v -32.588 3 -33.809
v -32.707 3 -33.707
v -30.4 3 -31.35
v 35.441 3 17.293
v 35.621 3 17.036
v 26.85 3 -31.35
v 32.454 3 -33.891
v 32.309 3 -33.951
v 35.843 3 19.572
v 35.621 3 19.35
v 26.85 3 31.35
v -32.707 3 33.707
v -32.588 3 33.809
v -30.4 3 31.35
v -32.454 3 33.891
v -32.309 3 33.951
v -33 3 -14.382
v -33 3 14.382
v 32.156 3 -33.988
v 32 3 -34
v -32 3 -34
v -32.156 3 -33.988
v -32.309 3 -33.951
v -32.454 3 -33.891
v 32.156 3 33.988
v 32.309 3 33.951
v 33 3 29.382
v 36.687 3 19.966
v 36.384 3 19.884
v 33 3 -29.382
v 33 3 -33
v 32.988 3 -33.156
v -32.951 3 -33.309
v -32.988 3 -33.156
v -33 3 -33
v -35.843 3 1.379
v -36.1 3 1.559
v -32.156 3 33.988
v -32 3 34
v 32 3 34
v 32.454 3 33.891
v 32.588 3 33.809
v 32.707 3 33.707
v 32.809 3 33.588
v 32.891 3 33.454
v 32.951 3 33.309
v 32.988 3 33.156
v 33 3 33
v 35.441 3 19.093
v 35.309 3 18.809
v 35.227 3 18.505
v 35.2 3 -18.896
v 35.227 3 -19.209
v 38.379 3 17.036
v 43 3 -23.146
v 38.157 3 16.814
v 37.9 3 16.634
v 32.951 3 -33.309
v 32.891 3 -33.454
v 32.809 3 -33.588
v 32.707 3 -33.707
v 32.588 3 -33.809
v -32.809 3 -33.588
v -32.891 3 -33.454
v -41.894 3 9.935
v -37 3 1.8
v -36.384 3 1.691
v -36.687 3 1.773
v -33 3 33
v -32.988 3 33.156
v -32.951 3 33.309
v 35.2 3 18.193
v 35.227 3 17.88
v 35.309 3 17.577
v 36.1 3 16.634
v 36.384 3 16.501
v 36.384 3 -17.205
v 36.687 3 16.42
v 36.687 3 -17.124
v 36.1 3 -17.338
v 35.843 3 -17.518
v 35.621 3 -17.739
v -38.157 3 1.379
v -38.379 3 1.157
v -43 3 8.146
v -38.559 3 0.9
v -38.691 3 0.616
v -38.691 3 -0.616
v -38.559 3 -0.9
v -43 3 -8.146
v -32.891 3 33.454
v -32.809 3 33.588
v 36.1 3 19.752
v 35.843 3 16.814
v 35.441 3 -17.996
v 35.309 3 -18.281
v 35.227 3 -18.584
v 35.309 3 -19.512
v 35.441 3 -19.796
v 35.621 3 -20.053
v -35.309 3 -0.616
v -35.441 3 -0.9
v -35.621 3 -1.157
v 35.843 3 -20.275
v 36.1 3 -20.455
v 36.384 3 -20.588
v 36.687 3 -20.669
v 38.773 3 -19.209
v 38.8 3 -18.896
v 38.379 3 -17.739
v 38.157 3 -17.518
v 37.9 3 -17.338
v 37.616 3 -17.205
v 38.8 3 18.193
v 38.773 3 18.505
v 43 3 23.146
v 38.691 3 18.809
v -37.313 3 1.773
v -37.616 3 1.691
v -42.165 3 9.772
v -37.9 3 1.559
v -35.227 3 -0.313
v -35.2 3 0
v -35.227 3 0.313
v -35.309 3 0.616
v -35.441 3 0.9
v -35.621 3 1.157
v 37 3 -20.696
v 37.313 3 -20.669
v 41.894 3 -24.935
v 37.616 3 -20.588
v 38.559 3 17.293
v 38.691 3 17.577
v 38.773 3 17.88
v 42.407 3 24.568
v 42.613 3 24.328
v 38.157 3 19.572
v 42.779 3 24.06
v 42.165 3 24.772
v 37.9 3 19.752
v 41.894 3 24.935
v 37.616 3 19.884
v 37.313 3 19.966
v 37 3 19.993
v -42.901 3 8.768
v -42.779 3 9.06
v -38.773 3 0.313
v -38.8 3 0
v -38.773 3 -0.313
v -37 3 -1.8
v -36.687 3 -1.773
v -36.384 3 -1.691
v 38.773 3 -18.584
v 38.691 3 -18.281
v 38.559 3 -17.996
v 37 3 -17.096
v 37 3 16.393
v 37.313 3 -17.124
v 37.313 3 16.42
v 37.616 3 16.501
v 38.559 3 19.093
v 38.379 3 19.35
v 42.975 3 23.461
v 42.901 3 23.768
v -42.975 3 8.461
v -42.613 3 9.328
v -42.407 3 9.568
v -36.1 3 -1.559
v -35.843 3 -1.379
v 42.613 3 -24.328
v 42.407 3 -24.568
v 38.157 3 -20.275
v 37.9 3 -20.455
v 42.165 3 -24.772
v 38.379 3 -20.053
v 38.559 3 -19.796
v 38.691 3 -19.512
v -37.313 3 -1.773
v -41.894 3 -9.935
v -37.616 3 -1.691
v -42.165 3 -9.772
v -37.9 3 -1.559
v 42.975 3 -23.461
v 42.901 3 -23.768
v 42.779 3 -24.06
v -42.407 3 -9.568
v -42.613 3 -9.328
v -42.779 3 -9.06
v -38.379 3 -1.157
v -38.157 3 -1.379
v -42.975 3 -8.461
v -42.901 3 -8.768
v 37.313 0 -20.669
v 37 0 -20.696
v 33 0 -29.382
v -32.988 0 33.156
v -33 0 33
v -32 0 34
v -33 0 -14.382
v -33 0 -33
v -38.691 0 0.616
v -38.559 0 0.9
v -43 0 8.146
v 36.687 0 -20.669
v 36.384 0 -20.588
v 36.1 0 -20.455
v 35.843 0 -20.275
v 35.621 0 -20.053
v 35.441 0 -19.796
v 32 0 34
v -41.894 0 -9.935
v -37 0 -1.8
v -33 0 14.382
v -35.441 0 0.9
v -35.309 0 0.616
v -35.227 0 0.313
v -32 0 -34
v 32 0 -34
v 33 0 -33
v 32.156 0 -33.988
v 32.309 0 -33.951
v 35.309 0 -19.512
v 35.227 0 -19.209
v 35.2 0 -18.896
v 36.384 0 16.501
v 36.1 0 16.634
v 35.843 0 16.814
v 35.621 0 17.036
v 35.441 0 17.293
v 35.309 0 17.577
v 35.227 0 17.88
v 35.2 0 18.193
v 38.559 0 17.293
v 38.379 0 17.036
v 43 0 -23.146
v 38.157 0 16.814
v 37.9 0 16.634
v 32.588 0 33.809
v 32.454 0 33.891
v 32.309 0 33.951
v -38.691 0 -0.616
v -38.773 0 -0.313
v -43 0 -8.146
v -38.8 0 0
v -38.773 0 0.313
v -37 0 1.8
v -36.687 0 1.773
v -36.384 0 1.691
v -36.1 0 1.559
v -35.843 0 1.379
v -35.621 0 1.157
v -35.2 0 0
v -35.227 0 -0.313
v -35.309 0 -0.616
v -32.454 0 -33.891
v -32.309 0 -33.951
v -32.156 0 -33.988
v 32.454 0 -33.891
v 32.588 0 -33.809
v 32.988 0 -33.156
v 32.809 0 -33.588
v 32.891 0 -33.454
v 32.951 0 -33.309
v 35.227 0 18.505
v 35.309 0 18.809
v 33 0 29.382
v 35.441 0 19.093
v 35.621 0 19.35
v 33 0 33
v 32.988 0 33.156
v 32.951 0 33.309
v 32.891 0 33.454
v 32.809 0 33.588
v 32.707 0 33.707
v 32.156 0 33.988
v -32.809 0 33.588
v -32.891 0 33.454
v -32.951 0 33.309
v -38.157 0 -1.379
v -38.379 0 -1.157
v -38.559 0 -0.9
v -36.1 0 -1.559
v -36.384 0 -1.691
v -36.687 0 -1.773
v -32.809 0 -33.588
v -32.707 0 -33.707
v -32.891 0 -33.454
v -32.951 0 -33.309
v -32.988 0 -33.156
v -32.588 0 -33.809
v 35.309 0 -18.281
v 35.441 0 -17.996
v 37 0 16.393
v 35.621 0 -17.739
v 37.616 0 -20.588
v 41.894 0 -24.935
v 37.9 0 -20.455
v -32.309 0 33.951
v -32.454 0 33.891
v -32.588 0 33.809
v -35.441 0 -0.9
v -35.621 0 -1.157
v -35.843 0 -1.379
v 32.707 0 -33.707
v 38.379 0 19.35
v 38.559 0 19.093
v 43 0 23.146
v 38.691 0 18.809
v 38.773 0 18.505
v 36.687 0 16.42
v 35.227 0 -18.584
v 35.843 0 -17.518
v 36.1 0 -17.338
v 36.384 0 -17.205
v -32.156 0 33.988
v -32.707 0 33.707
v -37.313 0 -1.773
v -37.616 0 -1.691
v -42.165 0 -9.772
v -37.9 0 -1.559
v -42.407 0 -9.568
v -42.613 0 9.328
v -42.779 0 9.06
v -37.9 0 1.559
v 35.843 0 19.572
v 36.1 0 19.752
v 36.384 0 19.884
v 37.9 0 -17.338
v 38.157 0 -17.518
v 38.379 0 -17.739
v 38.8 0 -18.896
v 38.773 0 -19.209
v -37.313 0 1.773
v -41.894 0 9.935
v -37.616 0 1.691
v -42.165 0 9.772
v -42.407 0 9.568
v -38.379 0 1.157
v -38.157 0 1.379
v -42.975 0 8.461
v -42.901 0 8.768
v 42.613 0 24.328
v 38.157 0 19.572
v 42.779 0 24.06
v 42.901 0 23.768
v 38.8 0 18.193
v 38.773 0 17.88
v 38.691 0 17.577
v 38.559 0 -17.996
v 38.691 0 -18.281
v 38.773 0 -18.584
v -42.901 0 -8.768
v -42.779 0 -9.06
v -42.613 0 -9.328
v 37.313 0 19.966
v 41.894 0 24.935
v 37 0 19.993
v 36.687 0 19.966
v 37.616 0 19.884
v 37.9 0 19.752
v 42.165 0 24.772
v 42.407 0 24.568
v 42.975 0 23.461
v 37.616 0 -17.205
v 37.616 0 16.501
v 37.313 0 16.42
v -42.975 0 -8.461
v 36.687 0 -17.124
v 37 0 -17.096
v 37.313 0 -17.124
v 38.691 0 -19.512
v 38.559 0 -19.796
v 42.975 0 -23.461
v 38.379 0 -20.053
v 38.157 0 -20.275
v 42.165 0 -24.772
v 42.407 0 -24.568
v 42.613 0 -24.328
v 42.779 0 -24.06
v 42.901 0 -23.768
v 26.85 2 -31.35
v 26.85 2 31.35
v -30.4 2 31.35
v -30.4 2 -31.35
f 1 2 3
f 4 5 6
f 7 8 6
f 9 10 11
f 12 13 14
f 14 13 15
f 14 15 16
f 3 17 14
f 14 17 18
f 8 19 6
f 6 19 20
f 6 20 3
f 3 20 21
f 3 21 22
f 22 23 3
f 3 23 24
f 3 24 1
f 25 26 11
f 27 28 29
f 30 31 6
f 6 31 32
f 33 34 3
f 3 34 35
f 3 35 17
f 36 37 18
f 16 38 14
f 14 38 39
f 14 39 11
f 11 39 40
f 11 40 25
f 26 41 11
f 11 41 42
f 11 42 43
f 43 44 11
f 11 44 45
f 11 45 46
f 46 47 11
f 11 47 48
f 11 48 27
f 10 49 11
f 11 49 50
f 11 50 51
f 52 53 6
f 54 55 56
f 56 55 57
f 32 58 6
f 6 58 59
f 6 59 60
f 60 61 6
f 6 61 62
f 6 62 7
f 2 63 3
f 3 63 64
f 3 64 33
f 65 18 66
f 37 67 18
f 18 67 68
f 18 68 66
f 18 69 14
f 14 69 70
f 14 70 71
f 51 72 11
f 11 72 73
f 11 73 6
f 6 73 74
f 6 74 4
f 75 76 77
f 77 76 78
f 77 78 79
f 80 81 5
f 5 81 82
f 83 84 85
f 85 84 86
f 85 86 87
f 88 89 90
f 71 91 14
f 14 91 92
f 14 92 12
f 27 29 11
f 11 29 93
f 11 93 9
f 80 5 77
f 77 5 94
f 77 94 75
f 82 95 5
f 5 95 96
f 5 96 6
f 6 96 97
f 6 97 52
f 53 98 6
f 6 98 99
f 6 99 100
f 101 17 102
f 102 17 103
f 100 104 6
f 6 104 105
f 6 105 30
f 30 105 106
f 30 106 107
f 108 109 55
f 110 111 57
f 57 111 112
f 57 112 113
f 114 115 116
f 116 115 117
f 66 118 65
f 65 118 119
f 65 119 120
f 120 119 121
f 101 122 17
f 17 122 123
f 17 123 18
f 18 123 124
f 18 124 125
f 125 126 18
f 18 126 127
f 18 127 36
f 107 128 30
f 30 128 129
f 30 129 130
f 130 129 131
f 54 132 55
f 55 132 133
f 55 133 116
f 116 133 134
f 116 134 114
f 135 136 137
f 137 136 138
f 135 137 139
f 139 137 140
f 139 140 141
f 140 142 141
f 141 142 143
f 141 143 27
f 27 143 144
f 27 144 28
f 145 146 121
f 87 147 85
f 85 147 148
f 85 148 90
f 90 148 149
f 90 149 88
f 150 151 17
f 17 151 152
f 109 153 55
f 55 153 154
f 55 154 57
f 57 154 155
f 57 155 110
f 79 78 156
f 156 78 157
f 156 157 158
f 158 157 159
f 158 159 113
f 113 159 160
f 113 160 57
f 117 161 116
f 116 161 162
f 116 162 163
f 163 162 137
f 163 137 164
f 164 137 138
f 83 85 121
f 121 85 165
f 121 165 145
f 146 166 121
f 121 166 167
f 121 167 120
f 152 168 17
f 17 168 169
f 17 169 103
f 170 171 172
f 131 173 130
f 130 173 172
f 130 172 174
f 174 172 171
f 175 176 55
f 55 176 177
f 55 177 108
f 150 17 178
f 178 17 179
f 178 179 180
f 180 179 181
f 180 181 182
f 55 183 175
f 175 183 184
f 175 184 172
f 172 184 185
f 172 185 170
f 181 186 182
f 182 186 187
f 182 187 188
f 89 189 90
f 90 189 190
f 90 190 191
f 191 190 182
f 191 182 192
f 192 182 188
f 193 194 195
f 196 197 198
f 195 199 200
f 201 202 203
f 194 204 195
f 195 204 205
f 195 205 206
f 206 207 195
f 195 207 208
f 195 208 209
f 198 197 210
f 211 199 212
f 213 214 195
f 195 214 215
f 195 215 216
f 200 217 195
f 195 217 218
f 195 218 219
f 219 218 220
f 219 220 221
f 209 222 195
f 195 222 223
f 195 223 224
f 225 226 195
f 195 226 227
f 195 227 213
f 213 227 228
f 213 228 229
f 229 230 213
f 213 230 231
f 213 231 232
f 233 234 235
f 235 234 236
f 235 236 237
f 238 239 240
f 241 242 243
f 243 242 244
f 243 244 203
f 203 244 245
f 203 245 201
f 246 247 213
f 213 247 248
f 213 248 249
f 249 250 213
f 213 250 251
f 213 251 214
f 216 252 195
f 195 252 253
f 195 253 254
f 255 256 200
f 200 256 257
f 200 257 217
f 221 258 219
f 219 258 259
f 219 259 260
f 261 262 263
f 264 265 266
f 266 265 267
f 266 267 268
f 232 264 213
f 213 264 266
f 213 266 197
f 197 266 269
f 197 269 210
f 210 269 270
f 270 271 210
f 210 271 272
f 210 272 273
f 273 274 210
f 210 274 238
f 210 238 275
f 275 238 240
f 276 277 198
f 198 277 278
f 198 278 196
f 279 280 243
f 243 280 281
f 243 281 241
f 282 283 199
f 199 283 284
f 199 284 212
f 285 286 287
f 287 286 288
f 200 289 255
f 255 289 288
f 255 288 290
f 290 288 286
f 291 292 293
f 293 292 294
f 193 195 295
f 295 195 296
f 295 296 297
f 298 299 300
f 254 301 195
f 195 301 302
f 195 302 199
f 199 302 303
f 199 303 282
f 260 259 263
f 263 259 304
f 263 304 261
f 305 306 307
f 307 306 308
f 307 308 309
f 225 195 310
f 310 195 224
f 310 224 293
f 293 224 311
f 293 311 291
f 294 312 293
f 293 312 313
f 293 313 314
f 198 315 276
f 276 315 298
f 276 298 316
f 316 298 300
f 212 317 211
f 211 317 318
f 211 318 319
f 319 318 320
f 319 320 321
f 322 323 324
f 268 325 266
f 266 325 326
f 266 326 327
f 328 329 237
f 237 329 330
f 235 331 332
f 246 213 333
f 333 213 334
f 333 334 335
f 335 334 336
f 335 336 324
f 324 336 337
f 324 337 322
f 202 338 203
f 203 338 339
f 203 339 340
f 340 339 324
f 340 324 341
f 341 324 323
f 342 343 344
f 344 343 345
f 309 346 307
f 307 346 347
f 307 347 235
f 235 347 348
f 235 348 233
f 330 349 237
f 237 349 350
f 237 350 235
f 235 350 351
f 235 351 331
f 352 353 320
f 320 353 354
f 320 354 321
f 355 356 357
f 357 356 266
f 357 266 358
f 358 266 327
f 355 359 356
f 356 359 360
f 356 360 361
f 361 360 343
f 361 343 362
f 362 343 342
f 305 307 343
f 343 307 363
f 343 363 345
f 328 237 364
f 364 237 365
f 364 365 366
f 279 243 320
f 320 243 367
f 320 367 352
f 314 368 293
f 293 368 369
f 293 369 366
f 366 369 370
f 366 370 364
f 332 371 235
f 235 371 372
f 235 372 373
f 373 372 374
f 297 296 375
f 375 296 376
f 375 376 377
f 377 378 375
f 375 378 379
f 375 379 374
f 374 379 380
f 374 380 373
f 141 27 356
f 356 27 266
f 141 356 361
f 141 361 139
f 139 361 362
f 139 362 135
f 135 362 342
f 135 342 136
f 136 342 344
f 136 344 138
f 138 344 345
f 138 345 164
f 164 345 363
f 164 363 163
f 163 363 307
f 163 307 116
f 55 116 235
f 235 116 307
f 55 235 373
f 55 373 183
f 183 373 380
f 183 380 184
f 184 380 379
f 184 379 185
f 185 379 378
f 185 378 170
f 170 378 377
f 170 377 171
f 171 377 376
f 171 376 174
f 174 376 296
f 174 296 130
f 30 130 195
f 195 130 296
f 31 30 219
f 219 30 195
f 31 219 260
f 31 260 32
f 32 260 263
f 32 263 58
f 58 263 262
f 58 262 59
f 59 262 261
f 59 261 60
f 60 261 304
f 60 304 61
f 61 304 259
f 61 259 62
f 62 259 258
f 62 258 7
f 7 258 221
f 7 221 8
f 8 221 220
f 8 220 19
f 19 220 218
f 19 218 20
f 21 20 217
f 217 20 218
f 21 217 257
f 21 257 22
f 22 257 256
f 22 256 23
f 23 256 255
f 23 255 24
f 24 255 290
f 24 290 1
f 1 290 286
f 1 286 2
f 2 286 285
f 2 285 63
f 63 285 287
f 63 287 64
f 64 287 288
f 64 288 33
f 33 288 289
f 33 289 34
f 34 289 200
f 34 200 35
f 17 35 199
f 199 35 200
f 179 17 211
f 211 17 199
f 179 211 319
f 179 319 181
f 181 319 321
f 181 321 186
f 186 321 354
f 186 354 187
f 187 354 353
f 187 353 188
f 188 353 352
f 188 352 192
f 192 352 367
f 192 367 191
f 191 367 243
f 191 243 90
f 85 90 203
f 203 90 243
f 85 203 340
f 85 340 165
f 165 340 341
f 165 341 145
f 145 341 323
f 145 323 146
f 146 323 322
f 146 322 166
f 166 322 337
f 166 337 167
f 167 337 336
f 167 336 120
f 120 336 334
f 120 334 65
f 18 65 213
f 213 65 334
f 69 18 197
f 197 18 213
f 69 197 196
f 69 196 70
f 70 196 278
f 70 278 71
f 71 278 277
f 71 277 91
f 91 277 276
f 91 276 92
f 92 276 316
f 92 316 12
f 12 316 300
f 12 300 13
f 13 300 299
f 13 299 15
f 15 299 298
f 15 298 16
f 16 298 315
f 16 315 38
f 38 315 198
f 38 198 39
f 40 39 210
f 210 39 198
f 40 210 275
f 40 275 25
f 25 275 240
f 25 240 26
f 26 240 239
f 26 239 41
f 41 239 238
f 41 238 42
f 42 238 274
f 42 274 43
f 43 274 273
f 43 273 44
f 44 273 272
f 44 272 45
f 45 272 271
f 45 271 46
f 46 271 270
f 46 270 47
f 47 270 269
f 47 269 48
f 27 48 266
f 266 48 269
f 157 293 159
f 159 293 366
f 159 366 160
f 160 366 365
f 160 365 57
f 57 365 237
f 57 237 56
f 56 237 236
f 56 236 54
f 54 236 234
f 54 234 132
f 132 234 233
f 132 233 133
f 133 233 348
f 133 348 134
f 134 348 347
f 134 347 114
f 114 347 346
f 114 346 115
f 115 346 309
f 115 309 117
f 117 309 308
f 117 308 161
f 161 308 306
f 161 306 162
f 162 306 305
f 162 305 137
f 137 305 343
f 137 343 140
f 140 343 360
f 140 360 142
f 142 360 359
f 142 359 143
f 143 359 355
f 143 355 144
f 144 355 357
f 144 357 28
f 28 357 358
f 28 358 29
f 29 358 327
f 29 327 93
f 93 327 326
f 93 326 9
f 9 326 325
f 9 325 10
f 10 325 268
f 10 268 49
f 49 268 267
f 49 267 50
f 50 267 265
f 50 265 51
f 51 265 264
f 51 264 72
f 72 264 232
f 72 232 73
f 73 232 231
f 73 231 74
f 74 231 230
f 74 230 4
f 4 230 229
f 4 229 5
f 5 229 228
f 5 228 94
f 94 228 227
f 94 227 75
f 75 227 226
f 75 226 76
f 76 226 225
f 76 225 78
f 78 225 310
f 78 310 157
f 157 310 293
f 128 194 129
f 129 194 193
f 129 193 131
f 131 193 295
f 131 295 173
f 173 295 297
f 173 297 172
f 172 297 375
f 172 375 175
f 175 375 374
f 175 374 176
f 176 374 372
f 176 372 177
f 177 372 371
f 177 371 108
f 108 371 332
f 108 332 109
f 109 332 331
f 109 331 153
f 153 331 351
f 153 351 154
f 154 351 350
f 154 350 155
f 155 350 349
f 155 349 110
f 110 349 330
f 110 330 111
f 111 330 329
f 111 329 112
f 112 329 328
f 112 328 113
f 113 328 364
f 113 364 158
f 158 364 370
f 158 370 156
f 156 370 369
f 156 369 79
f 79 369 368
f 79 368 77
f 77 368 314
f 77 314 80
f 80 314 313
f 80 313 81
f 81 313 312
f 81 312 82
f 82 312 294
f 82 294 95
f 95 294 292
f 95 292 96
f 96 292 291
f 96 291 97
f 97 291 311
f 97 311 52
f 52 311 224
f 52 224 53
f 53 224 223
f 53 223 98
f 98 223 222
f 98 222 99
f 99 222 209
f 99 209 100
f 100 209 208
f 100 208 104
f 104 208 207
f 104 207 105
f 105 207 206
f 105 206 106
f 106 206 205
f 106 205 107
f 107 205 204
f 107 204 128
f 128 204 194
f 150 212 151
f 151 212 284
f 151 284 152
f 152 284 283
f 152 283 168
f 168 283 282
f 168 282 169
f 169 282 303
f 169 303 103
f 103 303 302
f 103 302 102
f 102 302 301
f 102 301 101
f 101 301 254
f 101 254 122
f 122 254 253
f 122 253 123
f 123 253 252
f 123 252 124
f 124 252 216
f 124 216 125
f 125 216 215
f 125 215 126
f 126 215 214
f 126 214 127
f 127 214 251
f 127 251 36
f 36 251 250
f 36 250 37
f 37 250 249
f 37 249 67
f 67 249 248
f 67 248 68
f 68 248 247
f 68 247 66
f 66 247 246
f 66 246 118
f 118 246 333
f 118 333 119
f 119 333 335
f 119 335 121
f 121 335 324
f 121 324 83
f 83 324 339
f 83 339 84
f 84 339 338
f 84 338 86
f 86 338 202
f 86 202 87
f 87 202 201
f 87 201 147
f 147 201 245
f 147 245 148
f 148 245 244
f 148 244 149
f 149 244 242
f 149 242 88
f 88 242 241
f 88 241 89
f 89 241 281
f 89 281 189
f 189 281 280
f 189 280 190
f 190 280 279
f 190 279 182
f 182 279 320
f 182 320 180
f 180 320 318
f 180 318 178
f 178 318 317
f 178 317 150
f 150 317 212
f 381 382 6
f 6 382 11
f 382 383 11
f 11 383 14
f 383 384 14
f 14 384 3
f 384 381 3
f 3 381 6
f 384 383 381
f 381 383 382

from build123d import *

# Parameters (mm, degrees)
SKETCH1_R           = 1.8
BOSS_EXTRUDE1_DEPTH = 3
CUT_EXTRUDE1_START  = 3
SKETCH3_W           = 57.25
SKETCH3_H           = 62.7
CUT_EXTRUDE1_DEPTH  = 1


with BuildPart() as part:
    # Sketch1 → Boss-Extrude1 (new body)
    with BuildSketch(Plane(origin=(0, 0, 0), x_dir=(-1, 0, 0), z_dir=(0, 1, 0))):
        with BuildLine():
            Line((-33, 29.381966011), (-33, 33))
            ThreePointArc((-33, 33), (-32.707106781, 33.707106781), (-32, 34))
            Line((-32, 34), (32, 34))
            ThreePointArc((32, 34), (32.707106781, 33.707106781), (33, 33))
            Line((33, 33), (33, 14.381966011))
            Line((33, 14.381966011), (41.894427191, 9.934752416))
            ThreePointArc((41.894427191, 9.934752416), (42.701301617, 9.197360258), (43, 8.145898034))
            Line((43, 8.145898034), (43, -8.145898034))
            ThreePointArc((43, -8.145898034), (42.701301617, -9.197360258), (41.894427191, -9.934752416))
            Line((41.894427191, -9.934752416), (33, -14.381966011))
            Line((33, -14.381966011), (33, -33))
            ThreePointArc((33, -33), (32.707106781, -33.707106781), (32, -34))
            Line((32, -34), (-32, -34))
            ThreePointArc((-32, -34), (-32.707106781, -33.707106781), (-33, -33))
            Line((-33, -33), (-33, -29.381966011))
            Line((-33, -29.381966011), (-41.894427191, -24.934752416))
            ThreePointArc((-41.894427191, -24.934752416), (-42.701301617, -24.197360258), (-43, -23.145898034))
            Line((-43, -23.145898034), (-43, 23.145898034))
            ThreePointArc((-43, 23.145898034), (-42.701301617, 24.197360258), (-41.894427191, 24.934752416))
            Line((-41.894427191, 24.934752416), (-33, 29.381966011))
        make_face()
        with Locations((-37, 18.192906379)):
            Circle(SKETCH1_R, mode=Mode.SUBTRACT)
        with Locations((-37, -18.896413475)):
            Circle(SKETCH1_R, mode=Mode.SUBTRACT)
        with Locations((37, 0)):
            Circle(SKETCH1_R, mode=Mode.SUBTRACT)
    extrude(amount=BOSS_EXTRUDE1_DEPTH)

    # Sketch3 → Cut-Extrude1 (cut)
    with BuildSketch(Plane(origin=(0, 0, 0), x_dir=(-1, 0, 0), z_dir=(0, 1, 0)).offset(CUT_EXTRUDE1_START)):
        with Locations((1.775, 0)):
            Rectangle(SKETCH3_W, SKETCH3_H)
    extrude(amount=-CUT_EXTRUDE1_DEPTH, mode=Mode.SUBTRACT)


solid = part.part
